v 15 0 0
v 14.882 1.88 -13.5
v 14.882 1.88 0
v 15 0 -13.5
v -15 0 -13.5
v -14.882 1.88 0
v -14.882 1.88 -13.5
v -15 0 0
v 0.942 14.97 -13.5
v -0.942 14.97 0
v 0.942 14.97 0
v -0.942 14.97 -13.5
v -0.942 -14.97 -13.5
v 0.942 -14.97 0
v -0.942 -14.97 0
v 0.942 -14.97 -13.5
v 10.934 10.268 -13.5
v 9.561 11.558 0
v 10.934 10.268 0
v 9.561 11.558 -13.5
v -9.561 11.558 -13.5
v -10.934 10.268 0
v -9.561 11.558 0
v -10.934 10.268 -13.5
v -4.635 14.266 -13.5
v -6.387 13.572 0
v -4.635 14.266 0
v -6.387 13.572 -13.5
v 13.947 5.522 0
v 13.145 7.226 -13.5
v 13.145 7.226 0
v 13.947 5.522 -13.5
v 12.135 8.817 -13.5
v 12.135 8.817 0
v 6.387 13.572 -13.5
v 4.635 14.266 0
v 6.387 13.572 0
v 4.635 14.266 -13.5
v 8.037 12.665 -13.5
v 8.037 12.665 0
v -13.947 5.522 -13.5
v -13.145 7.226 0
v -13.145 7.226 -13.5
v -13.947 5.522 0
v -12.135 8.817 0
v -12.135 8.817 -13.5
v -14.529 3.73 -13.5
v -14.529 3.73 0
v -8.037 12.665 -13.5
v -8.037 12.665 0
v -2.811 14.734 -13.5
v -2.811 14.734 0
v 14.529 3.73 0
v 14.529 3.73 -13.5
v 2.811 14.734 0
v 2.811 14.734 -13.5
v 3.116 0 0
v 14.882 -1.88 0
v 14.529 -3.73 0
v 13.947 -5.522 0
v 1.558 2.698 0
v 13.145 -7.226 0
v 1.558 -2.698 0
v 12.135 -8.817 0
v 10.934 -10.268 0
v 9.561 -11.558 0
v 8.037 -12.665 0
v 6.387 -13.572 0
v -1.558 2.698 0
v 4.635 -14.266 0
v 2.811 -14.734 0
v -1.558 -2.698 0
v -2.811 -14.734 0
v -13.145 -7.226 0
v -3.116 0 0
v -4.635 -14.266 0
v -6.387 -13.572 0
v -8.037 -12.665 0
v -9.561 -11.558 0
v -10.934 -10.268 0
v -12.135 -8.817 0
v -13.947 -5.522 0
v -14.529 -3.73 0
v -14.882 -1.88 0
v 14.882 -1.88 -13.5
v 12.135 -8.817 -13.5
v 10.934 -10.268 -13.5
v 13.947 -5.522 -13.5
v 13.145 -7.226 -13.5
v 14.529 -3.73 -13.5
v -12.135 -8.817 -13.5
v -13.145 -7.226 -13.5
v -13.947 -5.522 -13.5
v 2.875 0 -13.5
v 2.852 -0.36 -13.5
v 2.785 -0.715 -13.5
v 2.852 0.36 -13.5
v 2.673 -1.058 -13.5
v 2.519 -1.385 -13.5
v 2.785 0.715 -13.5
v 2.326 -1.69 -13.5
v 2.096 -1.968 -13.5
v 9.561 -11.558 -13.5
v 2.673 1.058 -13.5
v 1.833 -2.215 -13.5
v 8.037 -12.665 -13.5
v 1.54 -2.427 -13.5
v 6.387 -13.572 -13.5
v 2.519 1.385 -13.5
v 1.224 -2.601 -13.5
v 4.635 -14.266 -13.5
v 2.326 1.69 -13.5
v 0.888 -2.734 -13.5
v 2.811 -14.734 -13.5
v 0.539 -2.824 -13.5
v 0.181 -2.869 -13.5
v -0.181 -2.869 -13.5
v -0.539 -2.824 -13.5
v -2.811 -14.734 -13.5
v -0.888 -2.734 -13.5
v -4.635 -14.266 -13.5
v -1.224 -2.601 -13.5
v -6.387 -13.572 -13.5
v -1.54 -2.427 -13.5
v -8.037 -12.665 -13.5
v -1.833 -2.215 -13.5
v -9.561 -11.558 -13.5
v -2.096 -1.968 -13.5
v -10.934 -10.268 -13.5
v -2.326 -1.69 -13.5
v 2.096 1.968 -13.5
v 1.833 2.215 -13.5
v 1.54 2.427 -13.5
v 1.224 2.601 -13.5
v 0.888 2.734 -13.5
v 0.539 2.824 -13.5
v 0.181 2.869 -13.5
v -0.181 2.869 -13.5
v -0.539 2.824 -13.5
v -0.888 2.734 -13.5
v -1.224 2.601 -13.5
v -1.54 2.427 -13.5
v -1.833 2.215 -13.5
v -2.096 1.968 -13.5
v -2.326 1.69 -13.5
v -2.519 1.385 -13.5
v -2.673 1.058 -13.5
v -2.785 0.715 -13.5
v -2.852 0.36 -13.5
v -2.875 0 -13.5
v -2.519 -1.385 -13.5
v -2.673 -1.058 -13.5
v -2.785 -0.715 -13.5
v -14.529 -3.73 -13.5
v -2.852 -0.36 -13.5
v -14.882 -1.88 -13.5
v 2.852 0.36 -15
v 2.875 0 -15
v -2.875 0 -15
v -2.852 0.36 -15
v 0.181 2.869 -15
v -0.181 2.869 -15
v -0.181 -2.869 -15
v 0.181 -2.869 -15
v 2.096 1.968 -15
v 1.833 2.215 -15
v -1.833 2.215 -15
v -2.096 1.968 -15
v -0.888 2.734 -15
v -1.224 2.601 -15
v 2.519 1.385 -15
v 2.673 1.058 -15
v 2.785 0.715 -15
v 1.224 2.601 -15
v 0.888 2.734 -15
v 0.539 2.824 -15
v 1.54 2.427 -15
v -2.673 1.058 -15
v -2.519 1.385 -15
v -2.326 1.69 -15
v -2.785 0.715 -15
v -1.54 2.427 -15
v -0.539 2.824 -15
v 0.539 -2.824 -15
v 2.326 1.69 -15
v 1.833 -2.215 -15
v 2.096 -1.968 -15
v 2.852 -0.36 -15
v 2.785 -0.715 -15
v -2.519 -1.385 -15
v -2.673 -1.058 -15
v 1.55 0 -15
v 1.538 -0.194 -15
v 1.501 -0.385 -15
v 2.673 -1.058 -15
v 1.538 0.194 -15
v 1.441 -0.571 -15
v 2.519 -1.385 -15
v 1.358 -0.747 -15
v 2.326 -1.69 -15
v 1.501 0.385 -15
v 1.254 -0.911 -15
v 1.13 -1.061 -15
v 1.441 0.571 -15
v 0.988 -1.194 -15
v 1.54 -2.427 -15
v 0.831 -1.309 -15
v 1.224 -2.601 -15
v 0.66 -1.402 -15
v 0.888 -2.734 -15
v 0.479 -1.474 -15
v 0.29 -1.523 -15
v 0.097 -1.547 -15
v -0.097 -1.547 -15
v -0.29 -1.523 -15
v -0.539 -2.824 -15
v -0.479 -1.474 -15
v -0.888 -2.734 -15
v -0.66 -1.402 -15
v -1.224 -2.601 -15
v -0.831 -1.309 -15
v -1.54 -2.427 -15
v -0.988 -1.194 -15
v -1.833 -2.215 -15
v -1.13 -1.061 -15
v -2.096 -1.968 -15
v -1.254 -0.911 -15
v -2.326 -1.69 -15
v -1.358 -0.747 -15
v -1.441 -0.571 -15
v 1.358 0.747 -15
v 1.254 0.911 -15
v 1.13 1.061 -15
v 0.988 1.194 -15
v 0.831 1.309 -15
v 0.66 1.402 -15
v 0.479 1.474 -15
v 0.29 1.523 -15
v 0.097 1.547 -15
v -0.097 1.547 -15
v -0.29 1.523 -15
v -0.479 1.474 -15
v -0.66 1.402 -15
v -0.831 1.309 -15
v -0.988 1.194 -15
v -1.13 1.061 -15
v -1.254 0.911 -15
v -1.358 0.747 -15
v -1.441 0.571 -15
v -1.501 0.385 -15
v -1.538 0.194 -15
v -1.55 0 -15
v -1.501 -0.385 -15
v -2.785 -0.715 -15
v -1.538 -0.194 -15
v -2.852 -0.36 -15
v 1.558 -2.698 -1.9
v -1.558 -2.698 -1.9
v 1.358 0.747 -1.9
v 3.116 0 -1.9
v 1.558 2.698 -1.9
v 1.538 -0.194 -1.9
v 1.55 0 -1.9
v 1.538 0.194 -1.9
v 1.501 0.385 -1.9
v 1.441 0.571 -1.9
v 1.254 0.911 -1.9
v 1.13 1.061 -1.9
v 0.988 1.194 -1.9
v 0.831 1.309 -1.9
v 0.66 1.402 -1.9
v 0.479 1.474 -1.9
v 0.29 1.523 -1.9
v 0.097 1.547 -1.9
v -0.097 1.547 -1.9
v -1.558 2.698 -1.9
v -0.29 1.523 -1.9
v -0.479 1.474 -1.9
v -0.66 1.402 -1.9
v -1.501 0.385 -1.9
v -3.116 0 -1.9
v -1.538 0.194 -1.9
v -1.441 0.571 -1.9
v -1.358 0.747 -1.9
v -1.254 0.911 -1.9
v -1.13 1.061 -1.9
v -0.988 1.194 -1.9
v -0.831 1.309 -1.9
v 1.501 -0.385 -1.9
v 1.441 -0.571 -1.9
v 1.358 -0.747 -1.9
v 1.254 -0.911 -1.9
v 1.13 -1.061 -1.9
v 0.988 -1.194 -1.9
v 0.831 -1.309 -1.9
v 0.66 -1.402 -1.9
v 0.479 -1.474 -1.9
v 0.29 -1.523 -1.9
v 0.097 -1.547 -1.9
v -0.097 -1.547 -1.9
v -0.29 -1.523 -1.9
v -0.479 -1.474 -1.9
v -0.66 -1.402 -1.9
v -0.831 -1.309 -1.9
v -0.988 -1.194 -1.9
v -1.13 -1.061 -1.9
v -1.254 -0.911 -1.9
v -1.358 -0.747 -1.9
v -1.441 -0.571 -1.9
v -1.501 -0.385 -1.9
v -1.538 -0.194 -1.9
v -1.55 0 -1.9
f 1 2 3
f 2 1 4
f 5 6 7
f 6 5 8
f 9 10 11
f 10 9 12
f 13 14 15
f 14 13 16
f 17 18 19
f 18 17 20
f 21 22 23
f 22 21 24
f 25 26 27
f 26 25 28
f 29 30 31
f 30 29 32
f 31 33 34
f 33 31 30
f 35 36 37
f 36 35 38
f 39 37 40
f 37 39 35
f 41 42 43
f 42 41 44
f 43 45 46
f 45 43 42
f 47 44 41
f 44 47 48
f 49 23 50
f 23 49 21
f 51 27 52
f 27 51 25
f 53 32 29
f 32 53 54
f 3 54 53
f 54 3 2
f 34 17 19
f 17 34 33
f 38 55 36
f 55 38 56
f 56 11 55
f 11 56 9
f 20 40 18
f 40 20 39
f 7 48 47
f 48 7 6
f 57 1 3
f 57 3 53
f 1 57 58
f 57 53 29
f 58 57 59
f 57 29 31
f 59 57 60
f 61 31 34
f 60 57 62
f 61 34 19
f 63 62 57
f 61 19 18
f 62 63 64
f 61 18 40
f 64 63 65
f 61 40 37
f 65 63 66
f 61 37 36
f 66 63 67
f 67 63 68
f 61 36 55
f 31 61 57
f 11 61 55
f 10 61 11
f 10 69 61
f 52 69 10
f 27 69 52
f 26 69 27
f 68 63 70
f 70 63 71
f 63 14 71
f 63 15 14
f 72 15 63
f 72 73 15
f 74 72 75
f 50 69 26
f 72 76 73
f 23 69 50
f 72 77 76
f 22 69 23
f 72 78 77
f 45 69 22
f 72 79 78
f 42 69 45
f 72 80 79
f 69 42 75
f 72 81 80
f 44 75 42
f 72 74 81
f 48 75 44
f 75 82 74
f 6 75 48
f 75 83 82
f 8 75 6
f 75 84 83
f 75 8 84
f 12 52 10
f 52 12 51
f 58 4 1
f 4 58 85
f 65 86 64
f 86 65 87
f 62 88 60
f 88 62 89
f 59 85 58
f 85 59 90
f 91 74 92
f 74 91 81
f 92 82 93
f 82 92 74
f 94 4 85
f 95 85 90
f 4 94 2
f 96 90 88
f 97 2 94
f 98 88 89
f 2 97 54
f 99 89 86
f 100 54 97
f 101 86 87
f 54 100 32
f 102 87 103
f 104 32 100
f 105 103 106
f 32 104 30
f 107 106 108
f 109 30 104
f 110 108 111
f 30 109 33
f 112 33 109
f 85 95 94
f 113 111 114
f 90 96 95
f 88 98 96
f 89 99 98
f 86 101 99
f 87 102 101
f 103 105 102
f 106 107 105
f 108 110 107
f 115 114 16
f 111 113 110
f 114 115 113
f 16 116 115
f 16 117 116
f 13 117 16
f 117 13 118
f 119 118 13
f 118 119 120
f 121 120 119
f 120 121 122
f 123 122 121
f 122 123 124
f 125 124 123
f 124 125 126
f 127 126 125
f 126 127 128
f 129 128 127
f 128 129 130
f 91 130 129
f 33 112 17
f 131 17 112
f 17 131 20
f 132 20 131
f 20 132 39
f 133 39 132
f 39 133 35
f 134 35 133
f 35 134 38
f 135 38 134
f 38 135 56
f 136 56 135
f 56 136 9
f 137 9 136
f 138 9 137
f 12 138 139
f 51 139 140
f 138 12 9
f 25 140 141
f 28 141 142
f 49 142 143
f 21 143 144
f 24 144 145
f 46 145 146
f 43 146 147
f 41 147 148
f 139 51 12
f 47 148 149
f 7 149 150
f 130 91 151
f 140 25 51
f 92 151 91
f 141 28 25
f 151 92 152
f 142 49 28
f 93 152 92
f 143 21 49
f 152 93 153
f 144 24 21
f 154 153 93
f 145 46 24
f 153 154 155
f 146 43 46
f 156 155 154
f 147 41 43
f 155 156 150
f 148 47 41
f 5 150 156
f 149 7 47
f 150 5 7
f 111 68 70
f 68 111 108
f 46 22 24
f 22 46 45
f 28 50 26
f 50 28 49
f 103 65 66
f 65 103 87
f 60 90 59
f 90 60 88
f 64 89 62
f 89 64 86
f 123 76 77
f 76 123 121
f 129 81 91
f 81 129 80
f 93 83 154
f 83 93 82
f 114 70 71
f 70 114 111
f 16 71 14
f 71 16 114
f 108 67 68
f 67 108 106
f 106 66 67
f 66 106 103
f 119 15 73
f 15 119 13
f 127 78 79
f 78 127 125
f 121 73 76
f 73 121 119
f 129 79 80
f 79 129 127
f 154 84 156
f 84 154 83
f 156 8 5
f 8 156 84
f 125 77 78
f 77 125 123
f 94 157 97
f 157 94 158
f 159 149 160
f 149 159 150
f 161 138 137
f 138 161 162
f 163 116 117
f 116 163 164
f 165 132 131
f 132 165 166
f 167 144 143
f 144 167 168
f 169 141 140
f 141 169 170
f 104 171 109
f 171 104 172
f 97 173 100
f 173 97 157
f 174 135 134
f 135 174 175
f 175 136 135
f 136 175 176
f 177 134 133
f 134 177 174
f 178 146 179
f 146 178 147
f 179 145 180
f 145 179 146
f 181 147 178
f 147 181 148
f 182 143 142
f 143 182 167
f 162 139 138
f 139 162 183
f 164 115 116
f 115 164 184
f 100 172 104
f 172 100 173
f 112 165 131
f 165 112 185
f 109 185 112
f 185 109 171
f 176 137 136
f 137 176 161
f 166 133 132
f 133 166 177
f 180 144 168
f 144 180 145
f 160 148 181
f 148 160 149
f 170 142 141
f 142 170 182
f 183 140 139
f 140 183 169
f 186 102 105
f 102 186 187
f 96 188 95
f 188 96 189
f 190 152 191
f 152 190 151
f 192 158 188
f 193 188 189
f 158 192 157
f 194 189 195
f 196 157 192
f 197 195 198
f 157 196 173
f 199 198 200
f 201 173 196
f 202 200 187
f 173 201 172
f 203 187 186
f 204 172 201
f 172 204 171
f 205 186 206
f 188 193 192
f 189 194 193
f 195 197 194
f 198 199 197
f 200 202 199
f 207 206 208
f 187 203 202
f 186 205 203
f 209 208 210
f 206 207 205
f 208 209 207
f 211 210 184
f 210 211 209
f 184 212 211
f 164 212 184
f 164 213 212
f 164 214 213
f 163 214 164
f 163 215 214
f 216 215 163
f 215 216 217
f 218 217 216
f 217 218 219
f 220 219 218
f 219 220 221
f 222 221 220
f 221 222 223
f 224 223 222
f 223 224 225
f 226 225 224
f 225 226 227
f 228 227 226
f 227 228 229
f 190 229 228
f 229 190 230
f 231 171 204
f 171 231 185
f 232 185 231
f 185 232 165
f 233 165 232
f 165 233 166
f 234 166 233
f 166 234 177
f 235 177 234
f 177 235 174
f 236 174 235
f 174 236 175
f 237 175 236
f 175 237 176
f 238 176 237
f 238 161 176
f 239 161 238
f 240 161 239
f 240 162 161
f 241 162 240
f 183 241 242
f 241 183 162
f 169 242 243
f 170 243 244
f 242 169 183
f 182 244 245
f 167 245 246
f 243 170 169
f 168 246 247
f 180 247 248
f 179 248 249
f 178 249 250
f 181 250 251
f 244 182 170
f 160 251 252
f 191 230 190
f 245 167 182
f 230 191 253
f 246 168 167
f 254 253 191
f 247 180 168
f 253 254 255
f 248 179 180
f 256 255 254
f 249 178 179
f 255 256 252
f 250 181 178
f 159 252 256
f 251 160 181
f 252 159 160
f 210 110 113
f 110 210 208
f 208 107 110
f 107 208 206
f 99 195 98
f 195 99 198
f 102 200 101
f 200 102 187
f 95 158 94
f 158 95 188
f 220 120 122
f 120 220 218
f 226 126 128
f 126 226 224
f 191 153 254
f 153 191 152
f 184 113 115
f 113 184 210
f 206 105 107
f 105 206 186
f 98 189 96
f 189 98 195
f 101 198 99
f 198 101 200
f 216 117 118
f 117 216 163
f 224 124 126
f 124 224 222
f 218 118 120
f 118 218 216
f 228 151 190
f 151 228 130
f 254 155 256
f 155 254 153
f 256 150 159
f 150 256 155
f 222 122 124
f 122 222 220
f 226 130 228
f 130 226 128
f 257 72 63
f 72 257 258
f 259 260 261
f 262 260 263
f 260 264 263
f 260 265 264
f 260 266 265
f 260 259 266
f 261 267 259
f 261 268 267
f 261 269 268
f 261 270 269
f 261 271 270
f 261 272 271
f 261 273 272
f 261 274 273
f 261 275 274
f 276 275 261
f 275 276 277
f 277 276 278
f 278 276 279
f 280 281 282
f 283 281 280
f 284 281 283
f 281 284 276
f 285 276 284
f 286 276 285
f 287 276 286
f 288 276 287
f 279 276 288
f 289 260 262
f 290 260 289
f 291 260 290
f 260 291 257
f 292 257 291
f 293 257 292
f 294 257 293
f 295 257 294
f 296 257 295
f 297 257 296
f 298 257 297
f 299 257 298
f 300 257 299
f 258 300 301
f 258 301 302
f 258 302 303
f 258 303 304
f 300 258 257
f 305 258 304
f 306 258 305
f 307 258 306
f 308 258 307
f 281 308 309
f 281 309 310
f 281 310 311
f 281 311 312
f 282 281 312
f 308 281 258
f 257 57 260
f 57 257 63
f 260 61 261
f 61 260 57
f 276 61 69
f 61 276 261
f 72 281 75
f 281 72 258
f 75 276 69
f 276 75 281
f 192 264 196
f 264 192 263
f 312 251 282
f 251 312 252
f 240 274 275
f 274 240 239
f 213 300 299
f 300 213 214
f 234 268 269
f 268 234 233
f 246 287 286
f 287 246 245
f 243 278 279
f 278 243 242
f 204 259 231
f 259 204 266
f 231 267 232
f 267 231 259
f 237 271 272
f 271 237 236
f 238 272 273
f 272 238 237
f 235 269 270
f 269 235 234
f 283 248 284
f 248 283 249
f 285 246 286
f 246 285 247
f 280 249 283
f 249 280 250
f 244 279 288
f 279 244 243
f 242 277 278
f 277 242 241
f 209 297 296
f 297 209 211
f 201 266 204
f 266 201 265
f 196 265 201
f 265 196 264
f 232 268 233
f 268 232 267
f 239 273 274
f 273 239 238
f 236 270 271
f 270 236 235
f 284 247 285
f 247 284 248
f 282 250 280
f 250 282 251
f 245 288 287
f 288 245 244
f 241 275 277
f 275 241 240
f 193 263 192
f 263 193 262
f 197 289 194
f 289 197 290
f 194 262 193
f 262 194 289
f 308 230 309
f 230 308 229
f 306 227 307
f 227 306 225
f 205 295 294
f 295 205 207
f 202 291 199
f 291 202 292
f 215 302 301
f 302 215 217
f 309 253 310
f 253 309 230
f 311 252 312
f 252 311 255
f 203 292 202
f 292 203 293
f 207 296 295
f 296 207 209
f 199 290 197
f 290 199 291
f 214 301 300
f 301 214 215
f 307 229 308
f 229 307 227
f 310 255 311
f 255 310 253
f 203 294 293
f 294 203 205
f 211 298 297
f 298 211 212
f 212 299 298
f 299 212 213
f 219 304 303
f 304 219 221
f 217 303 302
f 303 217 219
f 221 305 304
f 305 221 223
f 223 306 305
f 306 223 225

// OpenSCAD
$fn = 50;


difference() {
	union() {
		translate(v = [0, 0, -13.5000000000]) {
			cylinder(h = 13.5000000000, r = 15.0000000000);
		}
		translate(v = [0, 0, -15.0000000000]) {
			cylinder(h = 15, r = 2.8750000000);
		}
	}
	union() {
		translate(v = [0, 0, 0]) {
			rotate(a = [0, 0, 0]) {
				difference() {
					union() {
						translate(v = [0, 0, -1.9000000000]) {
							linear_extrude(height = 1.9000000000) {
								polygon(points = [[3.1158000000, 0.0000000000], [1.5579000000, 2.6983619531], [-1.5579000000, 2.6983619531], [-3.1158000000, 0.0000000000], [-1.5579000000, -2.6983619531], [1.5579000000, -2.6983619531]]);
							}
						}
					}
					union();
				}
			}
		}
		#translate(v = [0, 0, -100.0000000000]) {
			cylinder(h = 200, r = 1.5500000000);
		}
	}
}
